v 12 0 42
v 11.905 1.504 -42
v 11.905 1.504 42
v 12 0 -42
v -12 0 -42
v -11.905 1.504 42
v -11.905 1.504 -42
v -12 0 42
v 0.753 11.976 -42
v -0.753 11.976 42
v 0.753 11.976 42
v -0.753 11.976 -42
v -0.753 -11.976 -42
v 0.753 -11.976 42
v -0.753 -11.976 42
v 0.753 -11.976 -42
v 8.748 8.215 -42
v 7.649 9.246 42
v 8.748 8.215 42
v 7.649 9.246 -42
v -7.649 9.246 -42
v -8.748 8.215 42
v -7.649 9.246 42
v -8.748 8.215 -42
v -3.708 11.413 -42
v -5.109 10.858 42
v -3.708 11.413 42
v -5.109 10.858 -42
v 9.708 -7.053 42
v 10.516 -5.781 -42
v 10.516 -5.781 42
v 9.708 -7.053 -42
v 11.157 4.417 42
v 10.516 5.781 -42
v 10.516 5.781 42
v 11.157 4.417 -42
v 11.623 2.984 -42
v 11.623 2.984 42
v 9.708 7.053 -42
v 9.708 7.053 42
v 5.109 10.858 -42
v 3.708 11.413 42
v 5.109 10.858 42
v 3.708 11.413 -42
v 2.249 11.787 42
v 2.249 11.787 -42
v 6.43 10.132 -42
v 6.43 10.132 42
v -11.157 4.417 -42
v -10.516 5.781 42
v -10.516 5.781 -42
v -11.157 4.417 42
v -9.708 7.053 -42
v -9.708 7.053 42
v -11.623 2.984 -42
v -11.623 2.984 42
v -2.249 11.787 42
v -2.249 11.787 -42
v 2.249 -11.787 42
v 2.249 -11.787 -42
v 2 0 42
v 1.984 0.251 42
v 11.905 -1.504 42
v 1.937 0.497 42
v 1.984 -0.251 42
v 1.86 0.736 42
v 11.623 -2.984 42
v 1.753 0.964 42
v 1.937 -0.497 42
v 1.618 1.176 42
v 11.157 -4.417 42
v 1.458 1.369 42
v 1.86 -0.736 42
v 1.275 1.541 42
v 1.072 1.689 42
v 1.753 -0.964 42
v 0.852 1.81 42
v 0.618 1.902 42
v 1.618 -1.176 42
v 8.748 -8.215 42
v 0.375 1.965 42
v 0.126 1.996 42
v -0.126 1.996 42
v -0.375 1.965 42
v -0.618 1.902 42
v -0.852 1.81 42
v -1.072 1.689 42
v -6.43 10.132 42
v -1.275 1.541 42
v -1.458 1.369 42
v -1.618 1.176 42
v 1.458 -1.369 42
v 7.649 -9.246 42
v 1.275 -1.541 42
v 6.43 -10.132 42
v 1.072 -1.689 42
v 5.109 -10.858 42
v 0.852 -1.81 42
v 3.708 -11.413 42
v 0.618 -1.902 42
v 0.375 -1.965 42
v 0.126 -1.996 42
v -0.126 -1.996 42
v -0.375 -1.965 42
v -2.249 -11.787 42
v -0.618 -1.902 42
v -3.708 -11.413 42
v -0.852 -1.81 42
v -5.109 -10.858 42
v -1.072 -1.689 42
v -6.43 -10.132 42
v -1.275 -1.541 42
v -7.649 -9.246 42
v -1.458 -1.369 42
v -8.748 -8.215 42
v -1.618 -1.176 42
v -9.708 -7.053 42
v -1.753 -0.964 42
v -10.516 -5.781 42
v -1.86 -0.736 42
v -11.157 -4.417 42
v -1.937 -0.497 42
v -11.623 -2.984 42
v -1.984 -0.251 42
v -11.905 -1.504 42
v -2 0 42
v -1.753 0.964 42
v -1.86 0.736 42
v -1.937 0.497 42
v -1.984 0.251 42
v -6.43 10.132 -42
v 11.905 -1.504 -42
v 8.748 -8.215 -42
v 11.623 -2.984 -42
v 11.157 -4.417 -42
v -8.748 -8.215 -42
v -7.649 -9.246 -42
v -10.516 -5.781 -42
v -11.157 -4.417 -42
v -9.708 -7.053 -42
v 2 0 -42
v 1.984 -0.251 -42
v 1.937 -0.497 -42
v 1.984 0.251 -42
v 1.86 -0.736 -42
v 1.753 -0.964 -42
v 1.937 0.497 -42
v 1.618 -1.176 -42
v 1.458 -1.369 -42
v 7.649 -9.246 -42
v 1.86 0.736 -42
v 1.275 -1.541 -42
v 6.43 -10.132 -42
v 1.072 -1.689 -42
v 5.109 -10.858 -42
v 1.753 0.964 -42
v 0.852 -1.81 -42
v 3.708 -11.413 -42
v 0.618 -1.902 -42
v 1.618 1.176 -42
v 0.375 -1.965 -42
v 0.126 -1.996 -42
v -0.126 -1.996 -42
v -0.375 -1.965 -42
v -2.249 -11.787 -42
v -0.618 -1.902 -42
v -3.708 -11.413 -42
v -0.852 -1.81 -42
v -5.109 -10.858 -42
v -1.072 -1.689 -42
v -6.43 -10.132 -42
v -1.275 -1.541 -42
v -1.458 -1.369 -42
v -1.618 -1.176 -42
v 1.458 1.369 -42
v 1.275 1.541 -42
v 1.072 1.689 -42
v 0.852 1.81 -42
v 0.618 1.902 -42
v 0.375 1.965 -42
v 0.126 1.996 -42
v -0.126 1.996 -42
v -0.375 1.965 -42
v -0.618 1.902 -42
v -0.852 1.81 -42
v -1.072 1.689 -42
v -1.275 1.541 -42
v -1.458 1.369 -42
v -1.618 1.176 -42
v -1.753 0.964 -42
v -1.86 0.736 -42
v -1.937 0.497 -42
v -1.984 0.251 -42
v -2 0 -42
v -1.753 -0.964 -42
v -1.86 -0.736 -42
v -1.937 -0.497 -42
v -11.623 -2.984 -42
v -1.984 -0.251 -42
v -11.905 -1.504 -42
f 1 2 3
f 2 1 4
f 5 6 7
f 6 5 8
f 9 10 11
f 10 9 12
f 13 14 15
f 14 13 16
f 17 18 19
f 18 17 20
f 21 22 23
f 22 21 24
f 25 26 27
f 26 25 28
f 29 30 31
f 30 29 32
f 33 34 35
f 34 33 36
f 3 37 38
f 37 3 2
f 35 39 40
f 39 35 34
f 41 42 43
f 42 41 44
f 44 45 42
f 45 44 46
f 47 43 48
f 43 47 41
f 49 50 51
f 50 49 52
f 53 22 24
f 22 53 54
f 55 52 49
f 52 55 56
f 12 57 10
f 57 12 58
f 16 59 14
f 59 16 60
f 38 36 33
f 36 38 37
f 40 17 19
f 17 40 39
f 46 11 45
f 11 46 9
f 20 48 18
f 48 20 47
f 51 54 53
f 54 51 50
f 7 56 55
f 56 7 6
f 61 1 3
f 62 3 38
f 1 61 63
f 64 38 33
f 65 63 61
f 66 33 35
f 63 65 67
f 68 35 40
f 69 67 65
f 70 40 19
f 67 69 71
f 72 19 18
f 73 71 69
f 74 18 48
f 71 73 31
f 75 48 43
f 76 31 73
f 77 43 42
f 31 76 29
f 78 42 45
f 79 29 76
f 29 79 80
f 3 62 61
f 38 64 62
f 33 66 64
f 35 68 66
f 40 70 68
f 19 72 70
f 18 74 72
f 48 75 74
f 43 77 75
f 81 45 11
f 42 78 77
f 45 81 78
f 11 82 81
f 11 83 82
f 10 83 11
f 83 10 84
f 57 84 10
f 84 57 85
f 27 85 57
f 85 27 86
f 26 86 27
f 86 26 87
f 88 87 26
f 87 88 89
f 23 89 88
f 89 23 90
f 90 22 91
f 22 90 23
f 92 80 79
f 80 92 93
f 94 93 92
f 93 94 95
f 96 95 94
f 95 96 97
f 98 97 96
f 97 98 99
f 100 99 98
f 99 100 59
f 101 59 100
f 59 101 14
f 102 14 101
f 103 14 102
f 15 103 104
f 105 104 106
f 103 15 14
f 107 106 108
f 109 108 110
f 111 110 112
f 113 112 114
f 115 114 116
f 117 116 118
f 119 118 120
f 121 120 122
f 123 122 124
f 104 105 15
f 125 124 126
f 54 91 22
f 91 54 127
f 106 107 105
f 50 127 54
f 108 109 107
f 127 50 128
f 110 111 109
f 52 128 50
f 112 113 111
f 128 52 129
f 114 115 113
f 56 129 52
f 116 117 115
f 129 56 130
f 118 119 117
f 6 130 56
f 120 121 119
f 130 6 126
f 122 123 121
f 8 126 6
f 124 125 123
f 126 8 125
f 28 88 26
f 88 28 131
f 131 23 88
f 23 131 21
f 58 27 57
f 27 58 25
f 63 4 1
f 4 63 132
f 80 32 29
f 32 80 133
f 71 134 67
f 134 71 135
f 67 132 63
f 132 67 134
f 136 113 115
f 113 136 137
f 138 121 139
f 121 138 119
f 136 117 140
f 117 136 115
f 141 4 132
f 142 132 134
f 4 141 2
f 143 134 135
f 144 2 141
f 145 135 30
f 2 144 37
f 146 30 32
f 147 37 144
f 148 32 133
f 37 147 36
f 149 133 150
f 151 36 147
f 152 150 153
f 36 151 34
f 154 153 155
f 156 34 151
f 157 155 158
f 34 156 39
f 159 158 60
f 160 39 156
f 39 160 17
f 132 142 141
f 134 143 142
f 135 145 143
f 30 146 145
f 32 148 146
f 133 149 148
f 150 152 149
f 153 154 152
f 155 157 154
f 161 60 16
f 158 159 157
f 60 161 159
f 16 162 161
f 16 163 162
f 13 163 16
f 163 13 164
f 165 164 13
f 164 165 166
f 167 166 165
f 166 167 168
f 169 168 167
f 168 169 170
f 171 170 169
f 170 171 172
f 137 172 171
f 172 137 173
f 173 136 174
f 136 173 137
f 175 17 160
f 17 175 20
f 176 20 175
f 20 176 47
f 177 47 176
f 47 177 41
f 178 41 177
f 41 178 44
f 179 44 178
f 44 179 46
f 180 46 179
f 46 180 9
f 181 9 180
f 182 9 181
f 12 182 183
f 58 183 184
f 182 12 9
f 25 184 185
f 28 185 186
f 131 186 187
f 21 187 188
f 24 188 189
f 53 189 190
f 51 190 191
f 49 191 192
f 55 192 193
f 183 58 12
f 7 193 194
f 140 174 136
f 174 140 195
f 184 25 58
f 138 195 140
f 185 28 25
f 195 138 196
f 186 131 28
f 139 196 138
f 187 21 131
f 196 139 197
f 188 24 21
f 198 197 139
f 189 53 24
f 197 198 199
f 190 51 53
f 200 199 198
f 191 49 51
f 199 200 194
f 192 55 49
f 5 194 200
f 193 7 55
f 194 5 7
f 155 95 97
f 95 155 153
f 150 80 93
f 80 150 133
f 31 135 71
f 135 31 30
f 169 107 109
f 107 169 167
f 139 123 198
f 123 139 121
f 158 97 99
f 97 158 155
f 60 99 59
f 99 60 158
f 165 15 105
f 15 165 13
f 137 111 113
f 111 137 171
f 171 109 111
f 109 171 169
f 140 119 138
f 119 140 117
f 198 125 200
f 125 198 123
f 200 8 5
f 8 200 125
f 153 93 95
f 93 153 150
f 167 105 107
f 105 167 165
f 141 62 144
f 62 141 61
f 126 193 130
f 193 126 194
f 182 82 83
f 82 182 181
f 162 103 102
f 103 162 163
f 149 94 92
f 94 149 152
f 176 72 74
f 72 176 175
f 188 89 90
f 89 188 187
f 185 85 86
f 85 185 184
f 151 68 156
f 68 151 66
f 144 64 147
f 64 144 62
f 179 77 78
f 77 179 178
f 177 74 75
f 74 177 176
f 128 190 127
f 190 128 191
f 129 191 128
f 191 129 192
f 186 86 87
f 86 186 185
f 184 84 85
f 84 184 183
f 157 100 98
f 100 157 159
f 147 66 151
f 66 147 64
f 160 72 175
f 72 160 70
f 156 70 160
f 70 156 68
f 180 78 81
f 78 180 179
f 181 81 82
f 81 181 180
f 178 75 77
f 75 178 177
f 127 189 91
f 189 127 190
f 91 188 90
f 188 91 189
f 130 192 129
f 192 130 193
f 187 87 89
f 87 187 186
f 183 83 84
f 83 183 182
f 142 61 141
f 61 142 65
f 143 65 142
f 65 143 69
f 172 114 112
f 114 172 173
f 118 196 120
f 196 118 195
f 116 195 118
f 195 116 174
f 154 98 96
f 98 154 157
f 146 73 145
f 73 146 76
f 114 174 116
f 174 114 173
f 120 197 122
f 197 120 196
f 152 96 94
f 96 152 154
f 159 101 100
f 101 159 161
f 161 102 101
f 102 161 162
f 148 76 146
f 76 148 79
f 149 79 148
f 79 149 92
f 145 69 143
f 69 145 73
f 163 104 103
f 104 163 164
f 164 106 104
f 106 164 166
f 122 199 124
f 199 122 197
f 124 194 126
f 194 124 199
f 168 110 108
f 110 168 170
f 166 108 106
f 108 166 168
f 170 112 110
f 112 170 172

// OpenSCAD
$fn = 50;


difference() {
	union() {
		translate(v = [0, 0, -42.0000000000]) {
			cylinder(h = 84, r = 12.0000000000);
		}
	}
	union() {
		translate(v = [0, 0, -100.0000000000]) {
			cylinder(h = 200, r = 2.0000000000);
		}
	}
}
